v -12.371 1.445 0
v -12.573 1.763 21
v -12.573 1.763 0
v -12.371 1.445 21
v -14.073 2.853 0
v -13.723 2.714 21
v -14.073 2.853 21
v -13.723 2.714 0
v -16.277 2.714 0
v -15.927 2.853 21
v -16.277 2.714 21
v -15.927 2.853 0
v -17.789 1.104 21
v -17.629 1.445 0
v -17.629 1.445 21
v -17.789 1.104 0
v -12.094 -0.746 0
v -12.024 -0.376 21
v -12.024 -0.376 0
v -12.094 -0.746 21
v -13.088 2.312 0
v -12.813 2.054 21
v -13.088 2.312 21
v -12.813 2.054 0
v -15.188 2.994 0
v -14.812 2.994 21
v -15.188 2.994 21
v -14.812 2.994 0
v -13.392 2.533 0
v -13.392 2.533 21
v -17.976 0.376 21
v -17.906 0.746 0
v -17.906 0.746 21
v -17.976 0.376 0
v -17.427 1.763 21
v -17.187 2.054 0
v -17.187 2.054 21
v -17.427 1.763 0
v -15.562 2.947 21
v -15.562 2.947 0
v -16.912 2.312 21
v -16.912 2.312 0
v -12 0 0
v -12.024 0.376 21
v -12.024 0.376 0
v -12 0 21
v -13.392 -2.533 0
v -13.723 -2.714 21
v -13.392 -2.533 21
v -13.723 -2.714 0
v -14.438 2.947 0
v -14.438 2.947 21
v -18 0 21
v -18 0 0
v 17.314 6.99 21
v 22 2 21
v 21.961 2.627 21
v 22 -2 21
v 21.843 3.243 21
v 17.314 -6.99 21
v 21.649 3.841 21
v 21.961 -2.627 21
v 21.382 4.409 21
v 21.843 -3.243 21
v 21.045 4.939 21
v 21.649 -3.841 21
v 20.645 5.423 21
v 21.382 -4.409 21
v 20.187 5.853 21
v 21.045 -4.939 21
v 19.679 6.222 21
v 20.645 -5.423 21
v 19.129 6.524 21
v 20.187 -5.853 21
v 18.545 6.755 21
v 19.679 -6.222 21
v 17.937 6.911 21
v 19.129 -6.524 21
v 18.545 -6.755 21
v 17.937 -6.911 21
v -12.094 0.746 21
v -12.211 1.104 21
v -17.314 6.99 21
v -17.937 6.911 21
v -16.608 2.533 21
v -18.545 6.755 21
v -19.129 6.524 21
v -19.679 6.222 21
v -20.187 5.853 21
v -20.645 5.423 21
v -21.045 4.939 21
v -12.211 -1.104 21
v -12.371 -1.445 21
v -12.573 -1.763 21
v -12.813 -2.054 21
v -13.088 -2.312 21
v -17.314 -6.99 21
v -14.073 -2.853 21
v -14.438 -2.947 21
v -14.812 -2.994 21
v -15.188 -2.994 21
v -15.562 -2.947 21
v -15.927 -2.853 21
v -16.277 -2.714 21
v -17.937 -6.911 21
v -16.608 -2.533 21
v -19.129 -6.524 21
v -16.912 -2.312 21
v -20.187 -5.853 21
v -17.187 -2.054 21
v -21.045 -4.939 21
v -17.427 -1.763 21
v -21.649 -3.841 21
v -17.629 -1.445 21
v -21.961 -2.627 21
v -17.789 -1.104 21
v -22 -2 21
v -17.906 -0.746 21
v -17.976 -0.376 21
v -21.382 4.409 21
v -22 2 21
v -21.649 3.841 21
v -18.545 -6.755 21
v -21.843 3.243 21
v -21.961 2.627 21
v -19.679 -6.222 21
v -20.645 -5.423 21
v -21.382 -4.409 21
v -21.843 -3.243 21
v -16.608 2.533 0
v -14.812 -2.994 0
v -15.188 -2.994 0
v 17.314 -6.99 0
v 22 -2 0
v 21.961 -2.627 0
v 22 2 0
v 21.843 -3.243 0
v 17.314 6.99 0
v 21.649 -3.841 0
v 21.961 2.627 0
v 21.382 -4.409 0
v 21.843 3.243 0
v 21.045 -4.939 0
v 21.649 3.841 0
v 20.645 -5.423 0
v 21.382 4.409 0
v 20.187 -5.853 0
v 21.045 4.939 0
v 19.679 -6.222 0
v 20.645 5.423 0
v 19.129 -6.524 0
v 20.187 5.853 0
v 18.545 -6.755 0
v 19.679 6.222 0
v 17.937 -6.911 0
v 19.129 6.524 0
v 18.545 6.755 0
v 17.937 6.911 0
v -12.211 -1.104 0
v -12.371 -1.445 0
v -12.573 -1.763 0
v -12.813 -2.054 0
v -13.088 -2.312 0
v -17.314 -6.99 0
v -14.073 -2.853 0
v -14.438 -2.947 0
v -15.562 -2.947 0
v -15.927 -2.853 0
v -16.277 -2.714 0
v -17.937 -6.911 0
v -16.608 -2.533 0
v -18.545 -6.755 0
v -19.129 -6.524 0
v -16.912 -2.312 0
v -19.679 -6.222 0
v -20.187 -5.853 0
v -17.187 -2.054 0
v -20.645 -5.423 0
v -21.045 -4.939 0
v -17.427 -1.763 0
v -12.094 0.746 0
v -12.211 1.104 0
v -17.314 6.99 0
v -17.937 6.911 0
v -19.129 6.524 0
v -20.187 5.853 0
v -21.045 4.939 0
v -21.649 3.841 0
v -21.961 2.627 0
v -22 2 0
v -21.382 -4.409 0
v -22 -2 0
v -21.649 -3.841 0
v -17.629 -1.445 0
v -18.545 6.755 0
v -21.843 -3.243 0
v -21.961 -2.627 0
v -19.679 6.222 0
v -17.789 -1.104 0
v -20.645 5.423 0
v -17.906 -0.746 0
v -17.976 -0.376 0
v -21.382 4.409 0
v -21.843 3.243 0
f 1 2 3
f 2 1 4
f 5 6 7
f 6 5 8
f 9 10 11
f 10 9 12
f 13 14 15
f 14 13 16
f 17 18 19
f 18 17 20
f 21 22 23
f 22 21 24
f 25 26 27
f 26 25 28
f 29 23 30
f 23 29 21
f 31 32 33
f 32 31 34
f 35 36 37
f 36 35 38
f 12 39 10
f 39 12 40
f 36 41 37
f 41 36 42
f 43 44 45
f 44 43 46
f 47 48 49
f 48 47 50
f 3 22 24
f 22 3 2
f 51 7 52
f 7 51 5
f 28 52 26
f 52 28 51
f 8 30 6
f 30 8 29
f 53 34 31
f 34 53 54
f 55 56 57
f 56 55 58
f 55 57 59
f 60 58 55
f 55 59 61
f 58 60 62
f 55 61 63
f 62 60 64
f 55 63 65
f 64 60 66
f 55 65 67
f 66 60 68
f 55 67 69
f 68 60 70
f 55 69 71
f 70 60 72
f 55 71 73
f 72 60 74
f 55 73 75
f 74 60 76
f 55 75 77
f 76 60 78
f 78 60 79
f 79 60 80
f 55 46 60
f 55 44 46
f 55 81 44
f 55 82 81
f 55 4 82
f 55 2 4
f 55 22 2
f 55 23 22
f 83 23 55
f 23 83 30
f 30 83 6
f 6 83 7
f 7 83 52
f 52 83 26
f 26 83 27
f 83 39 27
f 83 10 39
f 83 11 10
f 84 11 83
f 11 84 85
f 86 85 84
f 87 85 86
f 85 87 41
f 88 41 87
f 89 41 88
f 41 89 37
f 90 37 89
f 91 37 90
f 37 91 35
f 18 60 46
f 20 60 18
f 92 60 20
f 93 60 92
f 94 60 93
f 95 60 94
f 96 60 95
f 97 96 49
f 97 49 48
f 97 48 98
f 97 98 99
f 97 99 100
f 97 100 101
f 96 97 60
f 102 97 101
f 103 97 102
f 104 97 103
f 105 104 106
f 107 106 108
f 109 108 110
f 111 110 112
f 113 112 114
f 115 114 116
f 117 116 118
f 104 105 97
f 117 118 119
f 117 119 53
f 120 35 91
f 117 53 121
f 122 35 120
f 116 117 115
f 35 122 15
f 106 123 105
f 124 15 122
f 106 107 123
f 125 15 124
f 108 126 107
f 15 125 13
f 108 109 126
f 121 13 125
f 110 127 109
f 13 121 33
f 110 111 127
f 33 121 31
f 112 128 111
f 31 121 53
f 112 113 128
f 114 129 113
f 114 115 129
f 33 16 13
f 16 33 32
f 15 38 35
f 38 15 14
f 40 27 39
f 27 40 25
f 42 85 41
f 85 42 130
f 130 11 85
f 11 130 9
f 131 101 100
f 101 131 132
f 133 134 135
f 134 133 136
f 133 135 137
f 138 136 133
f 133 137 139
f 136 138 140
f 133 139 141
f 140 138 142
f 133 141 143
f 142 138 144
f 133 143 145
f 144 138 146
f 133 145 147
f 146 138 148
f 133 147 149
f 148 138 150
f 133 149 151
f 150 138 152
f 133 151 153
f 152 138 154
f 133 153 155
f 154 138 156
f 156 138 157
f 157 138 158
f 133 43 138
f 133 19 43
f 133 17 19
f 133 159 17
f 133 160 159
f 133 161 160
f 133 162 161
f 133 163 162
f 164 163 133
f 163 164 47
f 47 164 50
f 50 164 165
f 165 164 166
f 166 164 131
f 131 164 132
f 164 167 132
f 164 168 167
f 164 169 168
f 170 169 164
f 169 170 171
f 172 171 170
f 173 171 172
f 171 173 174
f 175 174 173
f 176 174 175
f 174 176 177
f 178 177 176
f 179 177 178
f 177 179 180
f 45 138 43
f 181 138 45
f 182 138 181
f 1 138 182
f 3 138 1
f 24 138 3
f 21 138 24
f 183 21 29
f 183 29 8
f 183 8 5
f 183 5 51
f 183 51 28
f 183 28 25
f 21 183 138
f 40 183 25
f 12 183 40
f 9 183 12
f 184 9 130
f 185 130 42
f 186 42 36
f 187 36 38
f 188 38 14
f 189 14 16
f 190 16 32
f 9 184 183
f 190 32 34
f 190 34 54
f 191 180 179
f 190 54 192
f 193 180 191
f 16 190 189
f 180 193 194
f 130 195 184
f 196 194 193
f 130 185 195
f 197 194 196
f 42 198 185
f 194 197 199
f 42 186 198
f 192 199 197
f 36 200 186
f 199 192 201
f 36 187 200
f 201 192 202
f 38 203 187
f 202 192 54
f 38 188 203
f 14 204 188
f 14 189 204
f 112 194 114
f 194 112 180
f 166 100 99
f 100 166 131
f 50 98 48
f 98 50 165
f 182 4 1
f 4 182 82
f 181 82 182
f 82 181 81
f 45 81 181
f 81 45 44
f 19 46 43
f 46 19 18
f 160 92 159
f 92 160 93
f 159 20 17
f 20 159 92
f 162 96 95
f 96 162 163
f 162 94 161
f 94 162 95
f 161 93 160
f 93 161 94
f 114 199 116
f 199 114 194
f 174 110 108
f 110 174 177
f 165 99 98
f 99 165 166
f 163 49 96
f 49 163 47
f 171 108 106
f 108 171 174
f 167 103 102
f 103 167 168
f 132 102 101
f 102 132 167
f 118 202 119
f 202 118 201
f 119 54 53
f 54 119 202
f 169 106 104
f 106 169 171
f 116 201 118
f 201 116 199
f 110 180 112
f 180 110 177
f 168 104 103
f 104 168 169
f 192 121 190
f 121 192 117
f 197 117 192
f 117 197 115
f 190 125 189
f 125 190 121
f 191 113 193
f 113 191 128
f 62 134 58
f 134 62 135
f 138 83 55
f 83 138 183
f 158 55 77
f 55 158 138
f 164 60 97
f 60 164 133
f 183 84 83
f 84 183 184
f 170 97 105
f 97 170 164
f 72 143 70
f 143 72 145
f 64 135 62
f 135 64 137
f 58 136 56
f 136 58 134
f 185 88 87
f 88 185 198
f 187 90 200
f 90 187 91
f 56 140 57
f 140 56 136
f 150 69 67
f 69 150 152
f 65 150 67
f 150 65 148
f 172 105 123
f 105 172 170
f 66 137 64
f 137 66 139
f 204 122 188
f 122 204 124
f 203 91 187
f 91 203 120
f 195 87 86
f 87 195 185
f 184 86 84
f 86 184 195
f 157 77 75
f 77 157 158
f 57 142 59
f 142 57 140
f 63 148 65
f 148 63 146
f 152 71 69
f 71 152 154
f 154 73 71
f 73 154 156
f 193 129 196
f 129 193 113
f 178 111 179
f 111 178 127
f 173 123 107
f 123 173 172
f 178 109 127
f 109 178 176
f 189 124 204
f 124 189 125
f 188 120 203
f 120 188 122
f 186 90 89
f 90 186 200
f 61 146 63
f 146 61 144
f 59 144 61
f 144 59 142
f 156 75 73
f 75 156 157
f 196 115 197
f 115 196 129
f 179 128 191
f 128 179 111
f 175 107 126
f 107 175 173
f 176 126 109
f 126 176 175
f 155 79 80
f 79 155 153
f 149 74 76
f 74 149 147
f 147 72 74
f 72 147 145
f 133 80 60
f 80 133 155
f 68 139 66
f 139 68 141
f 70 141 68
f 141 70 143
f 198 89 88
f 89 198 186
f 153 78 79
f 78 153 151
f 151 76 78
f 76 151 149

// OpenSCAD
$fn = 50;


difference() {
	union() {
		hull() {
			translate(v = [-17.0000000000, 2.0000000000, 0]) {
				cylinder(h = 21, r = 5);
			}
			translate(v = [17.0000000000, 2.0000000000, 0]) {
				cylinder(h = 21, r = 5);
			}
			translate(v = [-17.0000000000, -2.0000000000, 0]) {
				cylinder(h = 21, r = 5);
			}
			translate(v = [17.0000000000, -2.0000000000, 0]) {
				cylinder(h = 21, r = 5);
			}
		}
	}
	union() {
		translate(v = [-15.0000000000, 0.0000000000, 0]) {
			cylinder(h = 21, r = 3.0000000000);
		}
		translate(v = [-15.0000000000, 0.0000000000, 0]) {
			cylinder(h = 21, r = 1.5000000000);
		}
		translate(v = [-15.0000000000, 0.0000000000, 0]) {
			cylinder(h = 21, r = 1.5000000000);
		}
		translate(v = [-15.0000000000, 0.0000000000, 0]) {
			cylinder(h = 21, r = 1.5000000000);
		}
	}
}
